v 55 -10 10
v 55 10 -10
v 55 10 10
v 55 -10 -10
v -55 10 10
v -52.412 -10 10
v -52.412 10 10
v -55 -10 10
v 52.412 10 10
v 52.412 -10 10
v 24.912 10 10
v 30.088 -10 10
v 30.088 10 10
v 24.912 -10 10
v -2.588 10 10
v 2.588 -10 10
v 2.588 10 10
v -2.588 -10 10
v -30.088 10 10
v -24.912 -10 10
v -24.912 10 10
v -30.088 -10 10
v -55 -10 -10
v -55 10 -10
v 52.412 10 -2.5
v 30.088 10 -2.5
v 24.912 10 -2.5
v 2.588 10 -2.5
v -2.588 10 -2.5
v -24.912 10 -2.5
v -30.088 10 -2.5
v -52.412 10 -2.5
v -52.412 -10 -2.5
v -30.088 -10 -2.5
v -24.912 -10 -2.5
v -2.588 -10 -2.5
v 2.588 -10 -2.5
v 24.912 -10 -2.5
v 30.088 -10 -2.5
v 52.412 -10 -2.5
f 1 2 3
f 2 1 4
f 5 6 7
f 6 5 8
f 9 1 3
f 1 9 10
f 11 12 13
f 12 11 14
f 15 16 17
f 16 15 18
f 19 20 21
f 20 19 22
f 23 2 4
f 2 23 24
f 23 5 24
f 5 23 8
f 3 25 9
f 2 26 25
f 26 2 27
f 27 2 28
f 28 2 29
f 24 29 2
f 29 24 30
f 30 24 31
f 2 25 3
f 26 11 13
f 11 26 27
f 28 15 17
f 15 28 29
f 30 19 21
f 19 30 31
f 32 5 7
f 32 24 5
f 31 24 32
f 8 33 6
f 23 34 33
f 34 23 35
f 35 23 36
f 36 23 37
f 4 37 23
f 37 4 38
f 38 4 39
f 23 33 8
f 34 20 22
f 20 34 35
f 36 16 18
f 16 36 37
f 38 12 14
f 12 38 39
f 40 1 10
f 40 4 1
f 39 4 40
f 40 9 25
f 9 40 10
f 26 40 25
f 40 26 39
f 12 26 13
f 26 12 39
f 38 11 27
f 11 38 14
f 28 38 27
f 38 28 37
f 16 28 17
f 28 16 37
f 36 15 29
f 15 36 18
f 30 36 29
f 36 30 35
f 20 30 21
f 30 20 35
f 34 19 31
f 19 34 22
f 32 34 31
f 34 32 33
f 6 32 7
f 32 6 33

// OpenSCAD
module boulder_cutout() {
    cube([22.325, 20, 20], center = true);
}

module boulder_holder()
{
    difference() {
        cube([110, 20, 20], center = true);
        translate([1.5 * 110/4, 0, 7.5]) boulder_cutout();   
        translate([0.5 * 110/4, 0, 7.5]) boulder_cutout();
        translate([0.5 * -110/4, 0, 7.5]) boulder_cutout();
        translate([1.5 * -110/4, 0, 7.5]) boulder_cutout();
    }
}

boulder_holder();
